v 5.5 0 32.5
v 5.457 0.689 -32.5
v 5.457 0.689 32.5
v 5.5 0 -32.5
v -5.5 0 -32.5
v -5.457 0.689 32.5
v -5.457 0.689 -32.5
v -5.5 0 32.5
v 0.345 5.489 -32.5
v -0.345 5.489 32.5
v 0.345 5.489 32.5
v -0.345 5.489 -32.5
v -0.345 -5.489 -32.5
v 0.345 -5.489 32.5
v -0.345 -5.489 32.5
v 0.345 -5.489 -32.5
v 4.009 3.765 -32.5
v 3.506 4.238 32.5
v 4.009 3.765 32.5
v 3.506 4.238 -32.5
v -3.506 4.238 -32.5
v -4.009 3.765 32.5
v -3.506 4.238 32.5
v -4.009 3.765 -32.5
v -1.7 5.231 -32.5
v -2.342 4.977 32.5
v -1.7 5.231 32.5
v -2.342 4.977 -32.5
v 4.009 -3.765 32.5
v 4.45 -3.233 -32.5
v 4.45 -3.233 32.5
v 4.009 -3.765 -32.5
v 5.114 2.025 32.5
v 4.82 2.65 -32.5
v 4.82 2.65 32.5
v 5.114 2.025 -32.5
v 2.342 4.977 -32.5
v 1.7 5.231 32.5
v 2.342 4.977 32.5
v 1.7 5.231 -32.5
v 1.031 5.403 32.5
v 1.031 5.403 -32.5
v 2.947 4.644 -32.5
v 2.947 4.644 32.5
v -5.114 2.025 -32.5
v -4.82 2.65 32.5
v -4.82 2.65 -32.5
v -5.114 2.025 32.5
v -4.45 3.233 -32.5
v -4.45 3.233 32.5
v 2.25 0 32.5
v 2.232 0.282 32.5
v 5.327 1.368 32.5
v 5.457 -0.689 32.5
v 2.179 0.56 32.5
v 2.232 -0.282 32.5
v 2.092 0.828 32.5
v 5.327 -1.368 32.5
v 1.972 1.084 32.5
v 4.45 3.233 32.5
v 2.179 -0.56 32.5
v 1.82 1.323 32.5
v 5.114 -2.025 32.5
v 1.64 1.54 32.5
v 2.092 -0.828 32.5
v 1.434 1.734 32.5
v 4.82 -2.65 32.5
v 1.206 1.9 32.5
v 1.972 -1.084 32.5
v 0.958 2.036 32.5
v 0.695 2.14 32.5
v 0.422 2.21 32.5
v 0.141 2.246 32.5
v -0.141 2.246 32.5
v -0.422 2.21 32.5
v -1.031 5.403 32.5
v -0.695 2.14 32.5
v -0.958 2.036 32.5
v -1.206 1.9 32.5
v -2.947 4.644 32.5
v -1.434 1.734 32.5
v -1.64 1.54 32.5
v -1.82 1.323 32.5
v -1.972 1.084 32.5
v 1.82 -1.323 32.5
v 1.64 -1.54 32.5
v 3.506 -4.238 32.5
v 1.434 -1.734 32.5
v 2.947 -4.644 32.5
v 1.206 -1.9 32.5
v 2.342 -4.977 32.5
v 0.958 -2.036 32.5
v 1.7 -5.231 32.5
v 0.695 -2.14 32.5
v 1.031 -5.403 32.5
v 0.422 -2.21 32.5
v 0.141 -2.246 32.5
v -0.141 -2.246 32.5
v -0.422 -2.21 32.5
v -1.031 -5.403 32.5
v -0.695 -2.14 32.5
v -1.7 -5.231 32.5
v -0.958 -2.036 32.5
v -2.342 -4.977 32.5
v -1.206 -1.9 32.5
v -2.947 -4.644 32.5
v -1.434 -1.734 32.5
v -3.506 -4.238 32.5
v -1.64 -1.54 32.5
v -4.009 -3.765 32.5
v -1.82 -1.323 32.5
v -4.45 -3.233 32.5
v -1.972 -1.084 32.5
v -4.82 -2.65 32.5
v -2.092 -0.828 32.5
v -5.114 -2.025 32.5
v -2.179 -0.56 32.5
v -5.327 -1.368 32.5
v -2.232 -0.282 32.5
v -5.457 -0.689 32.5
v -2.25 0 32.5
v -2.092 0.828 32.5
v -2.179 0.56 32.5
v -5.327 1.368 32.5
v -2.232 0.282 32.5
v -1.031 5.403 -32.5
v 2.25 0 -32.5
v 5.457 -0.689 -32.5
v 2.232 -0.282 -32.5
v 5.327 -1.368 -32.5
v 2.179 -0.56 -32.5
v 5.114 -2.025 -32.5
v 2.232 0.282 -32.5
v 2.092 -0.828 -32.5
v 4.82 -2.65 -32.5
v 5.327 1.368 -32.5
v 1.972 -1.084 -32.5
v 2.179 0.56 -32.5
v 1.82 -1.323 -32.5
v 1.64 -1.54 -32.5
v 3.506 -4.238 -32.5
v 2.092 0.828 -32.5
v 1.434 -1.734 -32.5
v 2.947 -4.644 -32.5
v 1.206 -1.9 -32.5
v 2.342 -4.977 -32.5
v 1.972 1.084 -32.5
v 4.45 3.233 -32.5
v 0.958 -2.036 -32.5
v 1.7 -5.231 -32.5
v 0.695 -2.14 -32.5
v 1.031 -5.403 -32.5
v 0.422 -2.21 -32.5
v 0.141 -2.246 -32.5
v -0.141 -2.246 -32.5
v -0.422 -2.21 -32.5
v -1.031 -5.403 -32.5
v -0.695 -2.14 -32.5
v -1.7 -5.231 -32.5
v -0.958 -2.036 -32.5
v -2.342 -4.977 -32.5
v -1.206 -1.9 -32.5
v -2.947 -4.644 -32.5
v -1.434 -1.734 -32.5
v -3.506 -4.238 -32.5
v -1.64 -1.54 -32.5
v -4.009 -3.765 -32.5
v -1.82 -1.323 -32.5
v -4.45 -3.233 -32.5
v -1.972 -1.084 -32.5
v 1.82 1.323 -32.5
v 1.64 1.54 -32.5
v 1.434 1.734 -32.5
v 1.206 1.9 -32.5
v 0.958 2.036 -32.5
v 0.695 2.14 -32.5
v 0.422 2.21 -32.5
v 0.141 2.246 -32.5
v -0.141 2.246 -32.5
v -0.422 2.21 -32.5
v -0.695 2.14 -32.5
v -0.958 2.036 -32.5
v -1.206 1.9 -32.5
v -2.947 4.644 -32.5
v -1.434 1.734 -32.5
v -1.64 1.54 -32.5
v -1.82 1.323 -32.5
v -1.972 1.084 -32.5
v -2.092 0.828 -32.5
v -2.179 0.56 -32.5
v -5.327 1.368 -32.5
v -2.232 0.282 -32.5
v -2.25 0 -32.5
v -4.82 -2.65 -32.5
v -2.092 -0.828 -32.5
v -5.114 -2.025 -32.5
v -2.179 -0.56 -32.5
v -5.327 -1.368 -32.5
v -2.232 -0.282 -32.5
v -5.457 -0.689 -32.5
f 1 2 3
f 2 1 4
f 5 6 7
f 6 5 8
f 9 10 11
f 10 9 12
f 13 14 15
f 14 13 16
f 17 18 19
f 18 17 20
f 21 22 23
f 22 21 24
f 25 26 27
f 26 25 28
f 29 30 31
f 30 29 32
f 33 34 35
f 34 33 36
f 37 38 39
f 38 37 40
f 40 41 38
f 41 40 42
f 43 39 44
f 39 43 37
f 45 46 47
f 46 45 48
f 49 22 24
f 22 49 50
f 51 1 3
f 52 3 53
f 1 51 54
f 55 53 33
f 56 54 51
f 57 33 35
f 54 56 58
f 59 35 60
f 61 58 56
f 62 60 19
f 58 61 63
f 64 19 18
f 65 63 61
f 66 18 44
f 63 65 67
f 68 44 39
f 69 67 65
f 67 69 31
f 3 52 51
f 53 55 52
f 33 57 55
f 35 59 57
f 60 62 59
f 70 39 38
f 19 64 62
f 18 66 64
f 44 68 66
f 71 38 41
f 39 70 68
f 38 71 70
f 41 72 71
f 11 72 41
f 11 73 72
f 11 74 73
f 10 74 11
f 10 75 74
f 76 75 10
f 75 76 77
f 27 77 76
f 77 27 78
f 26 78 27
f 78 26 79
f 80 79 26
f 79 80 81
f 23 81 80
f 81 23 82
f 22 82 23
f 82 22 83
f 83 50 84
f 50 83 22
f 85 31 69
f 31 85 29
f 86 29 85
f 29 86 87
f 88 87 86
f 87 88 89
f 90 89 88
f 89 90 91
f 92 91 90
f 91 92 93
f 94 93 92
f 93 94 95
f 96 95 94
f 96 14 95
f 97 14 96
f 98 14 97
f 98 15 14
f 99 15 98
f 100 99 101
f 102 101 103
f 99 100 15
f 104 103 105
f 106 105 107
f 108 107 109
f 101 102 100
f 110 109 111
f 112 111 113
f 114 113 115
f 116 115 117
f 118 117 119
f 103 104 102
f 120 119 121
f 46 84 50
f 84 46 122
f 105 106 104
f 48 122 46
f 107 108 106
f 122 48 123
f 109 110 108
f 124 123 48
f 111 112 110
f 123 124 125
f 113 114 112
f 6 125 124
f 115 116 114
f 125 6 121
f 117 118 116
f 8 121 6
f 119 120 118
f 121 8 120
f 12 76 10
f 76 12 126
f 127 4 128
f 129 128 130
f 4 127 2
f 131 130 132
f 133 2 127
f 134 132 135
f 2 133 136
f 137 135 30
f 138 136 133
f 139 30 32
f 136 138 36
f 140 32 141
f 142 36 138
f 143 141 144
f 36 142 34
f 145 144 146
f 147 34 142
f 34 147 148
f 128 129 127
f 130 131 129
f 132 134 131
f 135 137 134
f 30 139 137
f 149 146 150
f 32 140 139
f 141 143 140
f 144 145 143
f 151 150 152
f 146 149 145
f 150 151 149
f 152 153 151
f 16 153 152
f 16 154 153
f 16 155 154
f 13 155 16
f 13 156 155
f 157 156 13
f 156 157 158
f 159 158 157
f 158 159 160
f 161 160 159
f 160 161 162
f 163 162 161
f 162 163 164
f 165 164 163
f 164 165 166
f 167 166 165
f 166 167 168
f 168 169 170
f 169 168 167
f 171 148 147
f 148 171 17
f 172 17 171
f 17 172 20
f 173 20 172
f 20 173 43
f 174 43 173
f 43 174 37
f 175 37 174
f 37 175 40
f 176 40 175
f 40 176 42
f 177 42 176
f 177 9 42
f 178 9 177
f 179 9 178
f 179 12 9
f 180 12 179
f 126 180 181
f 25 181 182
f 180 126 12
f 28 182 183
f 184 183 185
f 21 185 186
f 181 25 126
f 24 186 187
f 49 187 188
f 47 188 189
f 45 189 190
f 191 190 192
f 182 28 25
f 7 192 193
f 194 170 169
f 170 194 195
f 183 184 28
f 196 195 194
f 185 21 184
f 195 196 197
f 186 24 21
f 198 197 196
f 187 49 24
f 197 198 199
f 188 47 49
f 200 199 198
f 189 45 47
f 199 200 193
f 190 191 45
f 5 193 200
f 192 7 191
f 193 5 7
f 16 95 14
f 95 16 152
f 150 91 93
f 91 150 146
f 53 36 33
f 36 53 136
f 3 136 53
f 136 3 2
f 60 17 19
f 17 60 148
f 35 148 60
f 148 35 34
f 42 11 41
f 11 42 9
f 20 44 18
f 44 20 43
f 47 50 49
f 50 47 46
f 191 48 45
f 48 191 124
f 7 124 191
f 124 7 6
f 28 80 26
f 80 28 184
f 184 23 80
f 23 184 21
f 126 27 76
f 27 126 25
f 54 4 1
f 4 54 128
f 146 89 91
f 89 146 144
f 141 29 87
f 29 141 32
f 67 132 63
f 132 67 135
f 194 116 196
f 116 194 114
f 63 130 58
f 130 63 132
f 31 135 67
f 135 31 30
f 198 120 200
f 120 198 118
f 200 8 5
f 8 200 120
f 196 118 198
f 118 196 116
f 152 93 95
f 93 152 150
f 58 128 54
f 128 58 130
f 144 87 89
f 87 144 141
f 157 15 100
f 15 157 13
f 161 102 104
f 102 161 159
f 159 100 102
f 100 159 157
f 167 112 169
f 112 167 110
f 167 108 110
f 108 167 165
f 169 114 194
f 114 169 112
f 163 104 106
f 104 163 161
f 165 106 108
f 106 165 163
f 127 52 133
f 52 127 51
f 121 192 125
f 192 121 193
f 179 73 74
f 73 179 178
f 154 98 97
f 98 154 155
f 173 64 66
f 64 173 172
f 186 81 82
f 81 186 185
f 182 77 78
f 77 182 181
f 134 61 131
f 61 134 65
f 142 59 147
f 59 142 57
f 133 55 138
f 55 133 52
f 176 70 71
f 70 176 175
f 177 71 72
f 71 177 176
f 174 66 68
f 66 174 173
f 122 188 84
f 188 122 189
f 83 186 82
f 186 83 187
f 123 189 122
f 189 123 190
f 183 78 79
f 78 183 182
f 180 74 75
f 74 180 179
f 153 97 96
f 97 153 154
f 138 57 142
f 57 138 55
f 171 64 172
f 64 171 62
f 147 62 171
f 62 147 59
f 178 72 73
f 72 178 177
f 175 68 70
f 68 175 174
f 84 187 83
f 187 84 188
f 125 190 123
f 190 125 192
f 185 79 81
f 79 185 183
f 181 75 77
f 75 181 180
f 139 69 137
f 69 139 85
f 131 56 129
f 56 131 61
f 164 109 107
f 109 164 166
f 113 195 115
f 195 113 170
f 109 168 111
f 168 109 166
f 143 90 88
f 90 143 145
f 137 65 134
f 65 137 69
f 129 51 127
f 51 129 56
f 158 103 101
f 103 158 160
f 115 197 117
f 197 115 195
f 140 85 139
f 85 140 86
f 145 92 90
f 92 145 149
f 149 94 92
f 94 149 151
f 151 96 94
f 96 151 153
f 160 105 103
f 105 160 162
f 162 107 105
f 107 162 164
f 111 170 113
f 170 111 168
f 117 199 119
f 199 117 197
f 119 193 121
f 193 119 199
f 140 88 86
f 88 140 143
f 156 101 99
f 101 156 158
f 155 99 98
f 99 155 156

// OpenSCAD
$fn = 50;


difference() {
	union() {
		translate(v = [0, 0, -32.5000000000]) {
			cylinder(h = 65, r = 5.5000000000);
		}
	}
	union() {
		translate(v = [0, 0, -100.0000000000]) {
			cylinder(h = 200, r = 2.2500000000);
		}
	}
}
